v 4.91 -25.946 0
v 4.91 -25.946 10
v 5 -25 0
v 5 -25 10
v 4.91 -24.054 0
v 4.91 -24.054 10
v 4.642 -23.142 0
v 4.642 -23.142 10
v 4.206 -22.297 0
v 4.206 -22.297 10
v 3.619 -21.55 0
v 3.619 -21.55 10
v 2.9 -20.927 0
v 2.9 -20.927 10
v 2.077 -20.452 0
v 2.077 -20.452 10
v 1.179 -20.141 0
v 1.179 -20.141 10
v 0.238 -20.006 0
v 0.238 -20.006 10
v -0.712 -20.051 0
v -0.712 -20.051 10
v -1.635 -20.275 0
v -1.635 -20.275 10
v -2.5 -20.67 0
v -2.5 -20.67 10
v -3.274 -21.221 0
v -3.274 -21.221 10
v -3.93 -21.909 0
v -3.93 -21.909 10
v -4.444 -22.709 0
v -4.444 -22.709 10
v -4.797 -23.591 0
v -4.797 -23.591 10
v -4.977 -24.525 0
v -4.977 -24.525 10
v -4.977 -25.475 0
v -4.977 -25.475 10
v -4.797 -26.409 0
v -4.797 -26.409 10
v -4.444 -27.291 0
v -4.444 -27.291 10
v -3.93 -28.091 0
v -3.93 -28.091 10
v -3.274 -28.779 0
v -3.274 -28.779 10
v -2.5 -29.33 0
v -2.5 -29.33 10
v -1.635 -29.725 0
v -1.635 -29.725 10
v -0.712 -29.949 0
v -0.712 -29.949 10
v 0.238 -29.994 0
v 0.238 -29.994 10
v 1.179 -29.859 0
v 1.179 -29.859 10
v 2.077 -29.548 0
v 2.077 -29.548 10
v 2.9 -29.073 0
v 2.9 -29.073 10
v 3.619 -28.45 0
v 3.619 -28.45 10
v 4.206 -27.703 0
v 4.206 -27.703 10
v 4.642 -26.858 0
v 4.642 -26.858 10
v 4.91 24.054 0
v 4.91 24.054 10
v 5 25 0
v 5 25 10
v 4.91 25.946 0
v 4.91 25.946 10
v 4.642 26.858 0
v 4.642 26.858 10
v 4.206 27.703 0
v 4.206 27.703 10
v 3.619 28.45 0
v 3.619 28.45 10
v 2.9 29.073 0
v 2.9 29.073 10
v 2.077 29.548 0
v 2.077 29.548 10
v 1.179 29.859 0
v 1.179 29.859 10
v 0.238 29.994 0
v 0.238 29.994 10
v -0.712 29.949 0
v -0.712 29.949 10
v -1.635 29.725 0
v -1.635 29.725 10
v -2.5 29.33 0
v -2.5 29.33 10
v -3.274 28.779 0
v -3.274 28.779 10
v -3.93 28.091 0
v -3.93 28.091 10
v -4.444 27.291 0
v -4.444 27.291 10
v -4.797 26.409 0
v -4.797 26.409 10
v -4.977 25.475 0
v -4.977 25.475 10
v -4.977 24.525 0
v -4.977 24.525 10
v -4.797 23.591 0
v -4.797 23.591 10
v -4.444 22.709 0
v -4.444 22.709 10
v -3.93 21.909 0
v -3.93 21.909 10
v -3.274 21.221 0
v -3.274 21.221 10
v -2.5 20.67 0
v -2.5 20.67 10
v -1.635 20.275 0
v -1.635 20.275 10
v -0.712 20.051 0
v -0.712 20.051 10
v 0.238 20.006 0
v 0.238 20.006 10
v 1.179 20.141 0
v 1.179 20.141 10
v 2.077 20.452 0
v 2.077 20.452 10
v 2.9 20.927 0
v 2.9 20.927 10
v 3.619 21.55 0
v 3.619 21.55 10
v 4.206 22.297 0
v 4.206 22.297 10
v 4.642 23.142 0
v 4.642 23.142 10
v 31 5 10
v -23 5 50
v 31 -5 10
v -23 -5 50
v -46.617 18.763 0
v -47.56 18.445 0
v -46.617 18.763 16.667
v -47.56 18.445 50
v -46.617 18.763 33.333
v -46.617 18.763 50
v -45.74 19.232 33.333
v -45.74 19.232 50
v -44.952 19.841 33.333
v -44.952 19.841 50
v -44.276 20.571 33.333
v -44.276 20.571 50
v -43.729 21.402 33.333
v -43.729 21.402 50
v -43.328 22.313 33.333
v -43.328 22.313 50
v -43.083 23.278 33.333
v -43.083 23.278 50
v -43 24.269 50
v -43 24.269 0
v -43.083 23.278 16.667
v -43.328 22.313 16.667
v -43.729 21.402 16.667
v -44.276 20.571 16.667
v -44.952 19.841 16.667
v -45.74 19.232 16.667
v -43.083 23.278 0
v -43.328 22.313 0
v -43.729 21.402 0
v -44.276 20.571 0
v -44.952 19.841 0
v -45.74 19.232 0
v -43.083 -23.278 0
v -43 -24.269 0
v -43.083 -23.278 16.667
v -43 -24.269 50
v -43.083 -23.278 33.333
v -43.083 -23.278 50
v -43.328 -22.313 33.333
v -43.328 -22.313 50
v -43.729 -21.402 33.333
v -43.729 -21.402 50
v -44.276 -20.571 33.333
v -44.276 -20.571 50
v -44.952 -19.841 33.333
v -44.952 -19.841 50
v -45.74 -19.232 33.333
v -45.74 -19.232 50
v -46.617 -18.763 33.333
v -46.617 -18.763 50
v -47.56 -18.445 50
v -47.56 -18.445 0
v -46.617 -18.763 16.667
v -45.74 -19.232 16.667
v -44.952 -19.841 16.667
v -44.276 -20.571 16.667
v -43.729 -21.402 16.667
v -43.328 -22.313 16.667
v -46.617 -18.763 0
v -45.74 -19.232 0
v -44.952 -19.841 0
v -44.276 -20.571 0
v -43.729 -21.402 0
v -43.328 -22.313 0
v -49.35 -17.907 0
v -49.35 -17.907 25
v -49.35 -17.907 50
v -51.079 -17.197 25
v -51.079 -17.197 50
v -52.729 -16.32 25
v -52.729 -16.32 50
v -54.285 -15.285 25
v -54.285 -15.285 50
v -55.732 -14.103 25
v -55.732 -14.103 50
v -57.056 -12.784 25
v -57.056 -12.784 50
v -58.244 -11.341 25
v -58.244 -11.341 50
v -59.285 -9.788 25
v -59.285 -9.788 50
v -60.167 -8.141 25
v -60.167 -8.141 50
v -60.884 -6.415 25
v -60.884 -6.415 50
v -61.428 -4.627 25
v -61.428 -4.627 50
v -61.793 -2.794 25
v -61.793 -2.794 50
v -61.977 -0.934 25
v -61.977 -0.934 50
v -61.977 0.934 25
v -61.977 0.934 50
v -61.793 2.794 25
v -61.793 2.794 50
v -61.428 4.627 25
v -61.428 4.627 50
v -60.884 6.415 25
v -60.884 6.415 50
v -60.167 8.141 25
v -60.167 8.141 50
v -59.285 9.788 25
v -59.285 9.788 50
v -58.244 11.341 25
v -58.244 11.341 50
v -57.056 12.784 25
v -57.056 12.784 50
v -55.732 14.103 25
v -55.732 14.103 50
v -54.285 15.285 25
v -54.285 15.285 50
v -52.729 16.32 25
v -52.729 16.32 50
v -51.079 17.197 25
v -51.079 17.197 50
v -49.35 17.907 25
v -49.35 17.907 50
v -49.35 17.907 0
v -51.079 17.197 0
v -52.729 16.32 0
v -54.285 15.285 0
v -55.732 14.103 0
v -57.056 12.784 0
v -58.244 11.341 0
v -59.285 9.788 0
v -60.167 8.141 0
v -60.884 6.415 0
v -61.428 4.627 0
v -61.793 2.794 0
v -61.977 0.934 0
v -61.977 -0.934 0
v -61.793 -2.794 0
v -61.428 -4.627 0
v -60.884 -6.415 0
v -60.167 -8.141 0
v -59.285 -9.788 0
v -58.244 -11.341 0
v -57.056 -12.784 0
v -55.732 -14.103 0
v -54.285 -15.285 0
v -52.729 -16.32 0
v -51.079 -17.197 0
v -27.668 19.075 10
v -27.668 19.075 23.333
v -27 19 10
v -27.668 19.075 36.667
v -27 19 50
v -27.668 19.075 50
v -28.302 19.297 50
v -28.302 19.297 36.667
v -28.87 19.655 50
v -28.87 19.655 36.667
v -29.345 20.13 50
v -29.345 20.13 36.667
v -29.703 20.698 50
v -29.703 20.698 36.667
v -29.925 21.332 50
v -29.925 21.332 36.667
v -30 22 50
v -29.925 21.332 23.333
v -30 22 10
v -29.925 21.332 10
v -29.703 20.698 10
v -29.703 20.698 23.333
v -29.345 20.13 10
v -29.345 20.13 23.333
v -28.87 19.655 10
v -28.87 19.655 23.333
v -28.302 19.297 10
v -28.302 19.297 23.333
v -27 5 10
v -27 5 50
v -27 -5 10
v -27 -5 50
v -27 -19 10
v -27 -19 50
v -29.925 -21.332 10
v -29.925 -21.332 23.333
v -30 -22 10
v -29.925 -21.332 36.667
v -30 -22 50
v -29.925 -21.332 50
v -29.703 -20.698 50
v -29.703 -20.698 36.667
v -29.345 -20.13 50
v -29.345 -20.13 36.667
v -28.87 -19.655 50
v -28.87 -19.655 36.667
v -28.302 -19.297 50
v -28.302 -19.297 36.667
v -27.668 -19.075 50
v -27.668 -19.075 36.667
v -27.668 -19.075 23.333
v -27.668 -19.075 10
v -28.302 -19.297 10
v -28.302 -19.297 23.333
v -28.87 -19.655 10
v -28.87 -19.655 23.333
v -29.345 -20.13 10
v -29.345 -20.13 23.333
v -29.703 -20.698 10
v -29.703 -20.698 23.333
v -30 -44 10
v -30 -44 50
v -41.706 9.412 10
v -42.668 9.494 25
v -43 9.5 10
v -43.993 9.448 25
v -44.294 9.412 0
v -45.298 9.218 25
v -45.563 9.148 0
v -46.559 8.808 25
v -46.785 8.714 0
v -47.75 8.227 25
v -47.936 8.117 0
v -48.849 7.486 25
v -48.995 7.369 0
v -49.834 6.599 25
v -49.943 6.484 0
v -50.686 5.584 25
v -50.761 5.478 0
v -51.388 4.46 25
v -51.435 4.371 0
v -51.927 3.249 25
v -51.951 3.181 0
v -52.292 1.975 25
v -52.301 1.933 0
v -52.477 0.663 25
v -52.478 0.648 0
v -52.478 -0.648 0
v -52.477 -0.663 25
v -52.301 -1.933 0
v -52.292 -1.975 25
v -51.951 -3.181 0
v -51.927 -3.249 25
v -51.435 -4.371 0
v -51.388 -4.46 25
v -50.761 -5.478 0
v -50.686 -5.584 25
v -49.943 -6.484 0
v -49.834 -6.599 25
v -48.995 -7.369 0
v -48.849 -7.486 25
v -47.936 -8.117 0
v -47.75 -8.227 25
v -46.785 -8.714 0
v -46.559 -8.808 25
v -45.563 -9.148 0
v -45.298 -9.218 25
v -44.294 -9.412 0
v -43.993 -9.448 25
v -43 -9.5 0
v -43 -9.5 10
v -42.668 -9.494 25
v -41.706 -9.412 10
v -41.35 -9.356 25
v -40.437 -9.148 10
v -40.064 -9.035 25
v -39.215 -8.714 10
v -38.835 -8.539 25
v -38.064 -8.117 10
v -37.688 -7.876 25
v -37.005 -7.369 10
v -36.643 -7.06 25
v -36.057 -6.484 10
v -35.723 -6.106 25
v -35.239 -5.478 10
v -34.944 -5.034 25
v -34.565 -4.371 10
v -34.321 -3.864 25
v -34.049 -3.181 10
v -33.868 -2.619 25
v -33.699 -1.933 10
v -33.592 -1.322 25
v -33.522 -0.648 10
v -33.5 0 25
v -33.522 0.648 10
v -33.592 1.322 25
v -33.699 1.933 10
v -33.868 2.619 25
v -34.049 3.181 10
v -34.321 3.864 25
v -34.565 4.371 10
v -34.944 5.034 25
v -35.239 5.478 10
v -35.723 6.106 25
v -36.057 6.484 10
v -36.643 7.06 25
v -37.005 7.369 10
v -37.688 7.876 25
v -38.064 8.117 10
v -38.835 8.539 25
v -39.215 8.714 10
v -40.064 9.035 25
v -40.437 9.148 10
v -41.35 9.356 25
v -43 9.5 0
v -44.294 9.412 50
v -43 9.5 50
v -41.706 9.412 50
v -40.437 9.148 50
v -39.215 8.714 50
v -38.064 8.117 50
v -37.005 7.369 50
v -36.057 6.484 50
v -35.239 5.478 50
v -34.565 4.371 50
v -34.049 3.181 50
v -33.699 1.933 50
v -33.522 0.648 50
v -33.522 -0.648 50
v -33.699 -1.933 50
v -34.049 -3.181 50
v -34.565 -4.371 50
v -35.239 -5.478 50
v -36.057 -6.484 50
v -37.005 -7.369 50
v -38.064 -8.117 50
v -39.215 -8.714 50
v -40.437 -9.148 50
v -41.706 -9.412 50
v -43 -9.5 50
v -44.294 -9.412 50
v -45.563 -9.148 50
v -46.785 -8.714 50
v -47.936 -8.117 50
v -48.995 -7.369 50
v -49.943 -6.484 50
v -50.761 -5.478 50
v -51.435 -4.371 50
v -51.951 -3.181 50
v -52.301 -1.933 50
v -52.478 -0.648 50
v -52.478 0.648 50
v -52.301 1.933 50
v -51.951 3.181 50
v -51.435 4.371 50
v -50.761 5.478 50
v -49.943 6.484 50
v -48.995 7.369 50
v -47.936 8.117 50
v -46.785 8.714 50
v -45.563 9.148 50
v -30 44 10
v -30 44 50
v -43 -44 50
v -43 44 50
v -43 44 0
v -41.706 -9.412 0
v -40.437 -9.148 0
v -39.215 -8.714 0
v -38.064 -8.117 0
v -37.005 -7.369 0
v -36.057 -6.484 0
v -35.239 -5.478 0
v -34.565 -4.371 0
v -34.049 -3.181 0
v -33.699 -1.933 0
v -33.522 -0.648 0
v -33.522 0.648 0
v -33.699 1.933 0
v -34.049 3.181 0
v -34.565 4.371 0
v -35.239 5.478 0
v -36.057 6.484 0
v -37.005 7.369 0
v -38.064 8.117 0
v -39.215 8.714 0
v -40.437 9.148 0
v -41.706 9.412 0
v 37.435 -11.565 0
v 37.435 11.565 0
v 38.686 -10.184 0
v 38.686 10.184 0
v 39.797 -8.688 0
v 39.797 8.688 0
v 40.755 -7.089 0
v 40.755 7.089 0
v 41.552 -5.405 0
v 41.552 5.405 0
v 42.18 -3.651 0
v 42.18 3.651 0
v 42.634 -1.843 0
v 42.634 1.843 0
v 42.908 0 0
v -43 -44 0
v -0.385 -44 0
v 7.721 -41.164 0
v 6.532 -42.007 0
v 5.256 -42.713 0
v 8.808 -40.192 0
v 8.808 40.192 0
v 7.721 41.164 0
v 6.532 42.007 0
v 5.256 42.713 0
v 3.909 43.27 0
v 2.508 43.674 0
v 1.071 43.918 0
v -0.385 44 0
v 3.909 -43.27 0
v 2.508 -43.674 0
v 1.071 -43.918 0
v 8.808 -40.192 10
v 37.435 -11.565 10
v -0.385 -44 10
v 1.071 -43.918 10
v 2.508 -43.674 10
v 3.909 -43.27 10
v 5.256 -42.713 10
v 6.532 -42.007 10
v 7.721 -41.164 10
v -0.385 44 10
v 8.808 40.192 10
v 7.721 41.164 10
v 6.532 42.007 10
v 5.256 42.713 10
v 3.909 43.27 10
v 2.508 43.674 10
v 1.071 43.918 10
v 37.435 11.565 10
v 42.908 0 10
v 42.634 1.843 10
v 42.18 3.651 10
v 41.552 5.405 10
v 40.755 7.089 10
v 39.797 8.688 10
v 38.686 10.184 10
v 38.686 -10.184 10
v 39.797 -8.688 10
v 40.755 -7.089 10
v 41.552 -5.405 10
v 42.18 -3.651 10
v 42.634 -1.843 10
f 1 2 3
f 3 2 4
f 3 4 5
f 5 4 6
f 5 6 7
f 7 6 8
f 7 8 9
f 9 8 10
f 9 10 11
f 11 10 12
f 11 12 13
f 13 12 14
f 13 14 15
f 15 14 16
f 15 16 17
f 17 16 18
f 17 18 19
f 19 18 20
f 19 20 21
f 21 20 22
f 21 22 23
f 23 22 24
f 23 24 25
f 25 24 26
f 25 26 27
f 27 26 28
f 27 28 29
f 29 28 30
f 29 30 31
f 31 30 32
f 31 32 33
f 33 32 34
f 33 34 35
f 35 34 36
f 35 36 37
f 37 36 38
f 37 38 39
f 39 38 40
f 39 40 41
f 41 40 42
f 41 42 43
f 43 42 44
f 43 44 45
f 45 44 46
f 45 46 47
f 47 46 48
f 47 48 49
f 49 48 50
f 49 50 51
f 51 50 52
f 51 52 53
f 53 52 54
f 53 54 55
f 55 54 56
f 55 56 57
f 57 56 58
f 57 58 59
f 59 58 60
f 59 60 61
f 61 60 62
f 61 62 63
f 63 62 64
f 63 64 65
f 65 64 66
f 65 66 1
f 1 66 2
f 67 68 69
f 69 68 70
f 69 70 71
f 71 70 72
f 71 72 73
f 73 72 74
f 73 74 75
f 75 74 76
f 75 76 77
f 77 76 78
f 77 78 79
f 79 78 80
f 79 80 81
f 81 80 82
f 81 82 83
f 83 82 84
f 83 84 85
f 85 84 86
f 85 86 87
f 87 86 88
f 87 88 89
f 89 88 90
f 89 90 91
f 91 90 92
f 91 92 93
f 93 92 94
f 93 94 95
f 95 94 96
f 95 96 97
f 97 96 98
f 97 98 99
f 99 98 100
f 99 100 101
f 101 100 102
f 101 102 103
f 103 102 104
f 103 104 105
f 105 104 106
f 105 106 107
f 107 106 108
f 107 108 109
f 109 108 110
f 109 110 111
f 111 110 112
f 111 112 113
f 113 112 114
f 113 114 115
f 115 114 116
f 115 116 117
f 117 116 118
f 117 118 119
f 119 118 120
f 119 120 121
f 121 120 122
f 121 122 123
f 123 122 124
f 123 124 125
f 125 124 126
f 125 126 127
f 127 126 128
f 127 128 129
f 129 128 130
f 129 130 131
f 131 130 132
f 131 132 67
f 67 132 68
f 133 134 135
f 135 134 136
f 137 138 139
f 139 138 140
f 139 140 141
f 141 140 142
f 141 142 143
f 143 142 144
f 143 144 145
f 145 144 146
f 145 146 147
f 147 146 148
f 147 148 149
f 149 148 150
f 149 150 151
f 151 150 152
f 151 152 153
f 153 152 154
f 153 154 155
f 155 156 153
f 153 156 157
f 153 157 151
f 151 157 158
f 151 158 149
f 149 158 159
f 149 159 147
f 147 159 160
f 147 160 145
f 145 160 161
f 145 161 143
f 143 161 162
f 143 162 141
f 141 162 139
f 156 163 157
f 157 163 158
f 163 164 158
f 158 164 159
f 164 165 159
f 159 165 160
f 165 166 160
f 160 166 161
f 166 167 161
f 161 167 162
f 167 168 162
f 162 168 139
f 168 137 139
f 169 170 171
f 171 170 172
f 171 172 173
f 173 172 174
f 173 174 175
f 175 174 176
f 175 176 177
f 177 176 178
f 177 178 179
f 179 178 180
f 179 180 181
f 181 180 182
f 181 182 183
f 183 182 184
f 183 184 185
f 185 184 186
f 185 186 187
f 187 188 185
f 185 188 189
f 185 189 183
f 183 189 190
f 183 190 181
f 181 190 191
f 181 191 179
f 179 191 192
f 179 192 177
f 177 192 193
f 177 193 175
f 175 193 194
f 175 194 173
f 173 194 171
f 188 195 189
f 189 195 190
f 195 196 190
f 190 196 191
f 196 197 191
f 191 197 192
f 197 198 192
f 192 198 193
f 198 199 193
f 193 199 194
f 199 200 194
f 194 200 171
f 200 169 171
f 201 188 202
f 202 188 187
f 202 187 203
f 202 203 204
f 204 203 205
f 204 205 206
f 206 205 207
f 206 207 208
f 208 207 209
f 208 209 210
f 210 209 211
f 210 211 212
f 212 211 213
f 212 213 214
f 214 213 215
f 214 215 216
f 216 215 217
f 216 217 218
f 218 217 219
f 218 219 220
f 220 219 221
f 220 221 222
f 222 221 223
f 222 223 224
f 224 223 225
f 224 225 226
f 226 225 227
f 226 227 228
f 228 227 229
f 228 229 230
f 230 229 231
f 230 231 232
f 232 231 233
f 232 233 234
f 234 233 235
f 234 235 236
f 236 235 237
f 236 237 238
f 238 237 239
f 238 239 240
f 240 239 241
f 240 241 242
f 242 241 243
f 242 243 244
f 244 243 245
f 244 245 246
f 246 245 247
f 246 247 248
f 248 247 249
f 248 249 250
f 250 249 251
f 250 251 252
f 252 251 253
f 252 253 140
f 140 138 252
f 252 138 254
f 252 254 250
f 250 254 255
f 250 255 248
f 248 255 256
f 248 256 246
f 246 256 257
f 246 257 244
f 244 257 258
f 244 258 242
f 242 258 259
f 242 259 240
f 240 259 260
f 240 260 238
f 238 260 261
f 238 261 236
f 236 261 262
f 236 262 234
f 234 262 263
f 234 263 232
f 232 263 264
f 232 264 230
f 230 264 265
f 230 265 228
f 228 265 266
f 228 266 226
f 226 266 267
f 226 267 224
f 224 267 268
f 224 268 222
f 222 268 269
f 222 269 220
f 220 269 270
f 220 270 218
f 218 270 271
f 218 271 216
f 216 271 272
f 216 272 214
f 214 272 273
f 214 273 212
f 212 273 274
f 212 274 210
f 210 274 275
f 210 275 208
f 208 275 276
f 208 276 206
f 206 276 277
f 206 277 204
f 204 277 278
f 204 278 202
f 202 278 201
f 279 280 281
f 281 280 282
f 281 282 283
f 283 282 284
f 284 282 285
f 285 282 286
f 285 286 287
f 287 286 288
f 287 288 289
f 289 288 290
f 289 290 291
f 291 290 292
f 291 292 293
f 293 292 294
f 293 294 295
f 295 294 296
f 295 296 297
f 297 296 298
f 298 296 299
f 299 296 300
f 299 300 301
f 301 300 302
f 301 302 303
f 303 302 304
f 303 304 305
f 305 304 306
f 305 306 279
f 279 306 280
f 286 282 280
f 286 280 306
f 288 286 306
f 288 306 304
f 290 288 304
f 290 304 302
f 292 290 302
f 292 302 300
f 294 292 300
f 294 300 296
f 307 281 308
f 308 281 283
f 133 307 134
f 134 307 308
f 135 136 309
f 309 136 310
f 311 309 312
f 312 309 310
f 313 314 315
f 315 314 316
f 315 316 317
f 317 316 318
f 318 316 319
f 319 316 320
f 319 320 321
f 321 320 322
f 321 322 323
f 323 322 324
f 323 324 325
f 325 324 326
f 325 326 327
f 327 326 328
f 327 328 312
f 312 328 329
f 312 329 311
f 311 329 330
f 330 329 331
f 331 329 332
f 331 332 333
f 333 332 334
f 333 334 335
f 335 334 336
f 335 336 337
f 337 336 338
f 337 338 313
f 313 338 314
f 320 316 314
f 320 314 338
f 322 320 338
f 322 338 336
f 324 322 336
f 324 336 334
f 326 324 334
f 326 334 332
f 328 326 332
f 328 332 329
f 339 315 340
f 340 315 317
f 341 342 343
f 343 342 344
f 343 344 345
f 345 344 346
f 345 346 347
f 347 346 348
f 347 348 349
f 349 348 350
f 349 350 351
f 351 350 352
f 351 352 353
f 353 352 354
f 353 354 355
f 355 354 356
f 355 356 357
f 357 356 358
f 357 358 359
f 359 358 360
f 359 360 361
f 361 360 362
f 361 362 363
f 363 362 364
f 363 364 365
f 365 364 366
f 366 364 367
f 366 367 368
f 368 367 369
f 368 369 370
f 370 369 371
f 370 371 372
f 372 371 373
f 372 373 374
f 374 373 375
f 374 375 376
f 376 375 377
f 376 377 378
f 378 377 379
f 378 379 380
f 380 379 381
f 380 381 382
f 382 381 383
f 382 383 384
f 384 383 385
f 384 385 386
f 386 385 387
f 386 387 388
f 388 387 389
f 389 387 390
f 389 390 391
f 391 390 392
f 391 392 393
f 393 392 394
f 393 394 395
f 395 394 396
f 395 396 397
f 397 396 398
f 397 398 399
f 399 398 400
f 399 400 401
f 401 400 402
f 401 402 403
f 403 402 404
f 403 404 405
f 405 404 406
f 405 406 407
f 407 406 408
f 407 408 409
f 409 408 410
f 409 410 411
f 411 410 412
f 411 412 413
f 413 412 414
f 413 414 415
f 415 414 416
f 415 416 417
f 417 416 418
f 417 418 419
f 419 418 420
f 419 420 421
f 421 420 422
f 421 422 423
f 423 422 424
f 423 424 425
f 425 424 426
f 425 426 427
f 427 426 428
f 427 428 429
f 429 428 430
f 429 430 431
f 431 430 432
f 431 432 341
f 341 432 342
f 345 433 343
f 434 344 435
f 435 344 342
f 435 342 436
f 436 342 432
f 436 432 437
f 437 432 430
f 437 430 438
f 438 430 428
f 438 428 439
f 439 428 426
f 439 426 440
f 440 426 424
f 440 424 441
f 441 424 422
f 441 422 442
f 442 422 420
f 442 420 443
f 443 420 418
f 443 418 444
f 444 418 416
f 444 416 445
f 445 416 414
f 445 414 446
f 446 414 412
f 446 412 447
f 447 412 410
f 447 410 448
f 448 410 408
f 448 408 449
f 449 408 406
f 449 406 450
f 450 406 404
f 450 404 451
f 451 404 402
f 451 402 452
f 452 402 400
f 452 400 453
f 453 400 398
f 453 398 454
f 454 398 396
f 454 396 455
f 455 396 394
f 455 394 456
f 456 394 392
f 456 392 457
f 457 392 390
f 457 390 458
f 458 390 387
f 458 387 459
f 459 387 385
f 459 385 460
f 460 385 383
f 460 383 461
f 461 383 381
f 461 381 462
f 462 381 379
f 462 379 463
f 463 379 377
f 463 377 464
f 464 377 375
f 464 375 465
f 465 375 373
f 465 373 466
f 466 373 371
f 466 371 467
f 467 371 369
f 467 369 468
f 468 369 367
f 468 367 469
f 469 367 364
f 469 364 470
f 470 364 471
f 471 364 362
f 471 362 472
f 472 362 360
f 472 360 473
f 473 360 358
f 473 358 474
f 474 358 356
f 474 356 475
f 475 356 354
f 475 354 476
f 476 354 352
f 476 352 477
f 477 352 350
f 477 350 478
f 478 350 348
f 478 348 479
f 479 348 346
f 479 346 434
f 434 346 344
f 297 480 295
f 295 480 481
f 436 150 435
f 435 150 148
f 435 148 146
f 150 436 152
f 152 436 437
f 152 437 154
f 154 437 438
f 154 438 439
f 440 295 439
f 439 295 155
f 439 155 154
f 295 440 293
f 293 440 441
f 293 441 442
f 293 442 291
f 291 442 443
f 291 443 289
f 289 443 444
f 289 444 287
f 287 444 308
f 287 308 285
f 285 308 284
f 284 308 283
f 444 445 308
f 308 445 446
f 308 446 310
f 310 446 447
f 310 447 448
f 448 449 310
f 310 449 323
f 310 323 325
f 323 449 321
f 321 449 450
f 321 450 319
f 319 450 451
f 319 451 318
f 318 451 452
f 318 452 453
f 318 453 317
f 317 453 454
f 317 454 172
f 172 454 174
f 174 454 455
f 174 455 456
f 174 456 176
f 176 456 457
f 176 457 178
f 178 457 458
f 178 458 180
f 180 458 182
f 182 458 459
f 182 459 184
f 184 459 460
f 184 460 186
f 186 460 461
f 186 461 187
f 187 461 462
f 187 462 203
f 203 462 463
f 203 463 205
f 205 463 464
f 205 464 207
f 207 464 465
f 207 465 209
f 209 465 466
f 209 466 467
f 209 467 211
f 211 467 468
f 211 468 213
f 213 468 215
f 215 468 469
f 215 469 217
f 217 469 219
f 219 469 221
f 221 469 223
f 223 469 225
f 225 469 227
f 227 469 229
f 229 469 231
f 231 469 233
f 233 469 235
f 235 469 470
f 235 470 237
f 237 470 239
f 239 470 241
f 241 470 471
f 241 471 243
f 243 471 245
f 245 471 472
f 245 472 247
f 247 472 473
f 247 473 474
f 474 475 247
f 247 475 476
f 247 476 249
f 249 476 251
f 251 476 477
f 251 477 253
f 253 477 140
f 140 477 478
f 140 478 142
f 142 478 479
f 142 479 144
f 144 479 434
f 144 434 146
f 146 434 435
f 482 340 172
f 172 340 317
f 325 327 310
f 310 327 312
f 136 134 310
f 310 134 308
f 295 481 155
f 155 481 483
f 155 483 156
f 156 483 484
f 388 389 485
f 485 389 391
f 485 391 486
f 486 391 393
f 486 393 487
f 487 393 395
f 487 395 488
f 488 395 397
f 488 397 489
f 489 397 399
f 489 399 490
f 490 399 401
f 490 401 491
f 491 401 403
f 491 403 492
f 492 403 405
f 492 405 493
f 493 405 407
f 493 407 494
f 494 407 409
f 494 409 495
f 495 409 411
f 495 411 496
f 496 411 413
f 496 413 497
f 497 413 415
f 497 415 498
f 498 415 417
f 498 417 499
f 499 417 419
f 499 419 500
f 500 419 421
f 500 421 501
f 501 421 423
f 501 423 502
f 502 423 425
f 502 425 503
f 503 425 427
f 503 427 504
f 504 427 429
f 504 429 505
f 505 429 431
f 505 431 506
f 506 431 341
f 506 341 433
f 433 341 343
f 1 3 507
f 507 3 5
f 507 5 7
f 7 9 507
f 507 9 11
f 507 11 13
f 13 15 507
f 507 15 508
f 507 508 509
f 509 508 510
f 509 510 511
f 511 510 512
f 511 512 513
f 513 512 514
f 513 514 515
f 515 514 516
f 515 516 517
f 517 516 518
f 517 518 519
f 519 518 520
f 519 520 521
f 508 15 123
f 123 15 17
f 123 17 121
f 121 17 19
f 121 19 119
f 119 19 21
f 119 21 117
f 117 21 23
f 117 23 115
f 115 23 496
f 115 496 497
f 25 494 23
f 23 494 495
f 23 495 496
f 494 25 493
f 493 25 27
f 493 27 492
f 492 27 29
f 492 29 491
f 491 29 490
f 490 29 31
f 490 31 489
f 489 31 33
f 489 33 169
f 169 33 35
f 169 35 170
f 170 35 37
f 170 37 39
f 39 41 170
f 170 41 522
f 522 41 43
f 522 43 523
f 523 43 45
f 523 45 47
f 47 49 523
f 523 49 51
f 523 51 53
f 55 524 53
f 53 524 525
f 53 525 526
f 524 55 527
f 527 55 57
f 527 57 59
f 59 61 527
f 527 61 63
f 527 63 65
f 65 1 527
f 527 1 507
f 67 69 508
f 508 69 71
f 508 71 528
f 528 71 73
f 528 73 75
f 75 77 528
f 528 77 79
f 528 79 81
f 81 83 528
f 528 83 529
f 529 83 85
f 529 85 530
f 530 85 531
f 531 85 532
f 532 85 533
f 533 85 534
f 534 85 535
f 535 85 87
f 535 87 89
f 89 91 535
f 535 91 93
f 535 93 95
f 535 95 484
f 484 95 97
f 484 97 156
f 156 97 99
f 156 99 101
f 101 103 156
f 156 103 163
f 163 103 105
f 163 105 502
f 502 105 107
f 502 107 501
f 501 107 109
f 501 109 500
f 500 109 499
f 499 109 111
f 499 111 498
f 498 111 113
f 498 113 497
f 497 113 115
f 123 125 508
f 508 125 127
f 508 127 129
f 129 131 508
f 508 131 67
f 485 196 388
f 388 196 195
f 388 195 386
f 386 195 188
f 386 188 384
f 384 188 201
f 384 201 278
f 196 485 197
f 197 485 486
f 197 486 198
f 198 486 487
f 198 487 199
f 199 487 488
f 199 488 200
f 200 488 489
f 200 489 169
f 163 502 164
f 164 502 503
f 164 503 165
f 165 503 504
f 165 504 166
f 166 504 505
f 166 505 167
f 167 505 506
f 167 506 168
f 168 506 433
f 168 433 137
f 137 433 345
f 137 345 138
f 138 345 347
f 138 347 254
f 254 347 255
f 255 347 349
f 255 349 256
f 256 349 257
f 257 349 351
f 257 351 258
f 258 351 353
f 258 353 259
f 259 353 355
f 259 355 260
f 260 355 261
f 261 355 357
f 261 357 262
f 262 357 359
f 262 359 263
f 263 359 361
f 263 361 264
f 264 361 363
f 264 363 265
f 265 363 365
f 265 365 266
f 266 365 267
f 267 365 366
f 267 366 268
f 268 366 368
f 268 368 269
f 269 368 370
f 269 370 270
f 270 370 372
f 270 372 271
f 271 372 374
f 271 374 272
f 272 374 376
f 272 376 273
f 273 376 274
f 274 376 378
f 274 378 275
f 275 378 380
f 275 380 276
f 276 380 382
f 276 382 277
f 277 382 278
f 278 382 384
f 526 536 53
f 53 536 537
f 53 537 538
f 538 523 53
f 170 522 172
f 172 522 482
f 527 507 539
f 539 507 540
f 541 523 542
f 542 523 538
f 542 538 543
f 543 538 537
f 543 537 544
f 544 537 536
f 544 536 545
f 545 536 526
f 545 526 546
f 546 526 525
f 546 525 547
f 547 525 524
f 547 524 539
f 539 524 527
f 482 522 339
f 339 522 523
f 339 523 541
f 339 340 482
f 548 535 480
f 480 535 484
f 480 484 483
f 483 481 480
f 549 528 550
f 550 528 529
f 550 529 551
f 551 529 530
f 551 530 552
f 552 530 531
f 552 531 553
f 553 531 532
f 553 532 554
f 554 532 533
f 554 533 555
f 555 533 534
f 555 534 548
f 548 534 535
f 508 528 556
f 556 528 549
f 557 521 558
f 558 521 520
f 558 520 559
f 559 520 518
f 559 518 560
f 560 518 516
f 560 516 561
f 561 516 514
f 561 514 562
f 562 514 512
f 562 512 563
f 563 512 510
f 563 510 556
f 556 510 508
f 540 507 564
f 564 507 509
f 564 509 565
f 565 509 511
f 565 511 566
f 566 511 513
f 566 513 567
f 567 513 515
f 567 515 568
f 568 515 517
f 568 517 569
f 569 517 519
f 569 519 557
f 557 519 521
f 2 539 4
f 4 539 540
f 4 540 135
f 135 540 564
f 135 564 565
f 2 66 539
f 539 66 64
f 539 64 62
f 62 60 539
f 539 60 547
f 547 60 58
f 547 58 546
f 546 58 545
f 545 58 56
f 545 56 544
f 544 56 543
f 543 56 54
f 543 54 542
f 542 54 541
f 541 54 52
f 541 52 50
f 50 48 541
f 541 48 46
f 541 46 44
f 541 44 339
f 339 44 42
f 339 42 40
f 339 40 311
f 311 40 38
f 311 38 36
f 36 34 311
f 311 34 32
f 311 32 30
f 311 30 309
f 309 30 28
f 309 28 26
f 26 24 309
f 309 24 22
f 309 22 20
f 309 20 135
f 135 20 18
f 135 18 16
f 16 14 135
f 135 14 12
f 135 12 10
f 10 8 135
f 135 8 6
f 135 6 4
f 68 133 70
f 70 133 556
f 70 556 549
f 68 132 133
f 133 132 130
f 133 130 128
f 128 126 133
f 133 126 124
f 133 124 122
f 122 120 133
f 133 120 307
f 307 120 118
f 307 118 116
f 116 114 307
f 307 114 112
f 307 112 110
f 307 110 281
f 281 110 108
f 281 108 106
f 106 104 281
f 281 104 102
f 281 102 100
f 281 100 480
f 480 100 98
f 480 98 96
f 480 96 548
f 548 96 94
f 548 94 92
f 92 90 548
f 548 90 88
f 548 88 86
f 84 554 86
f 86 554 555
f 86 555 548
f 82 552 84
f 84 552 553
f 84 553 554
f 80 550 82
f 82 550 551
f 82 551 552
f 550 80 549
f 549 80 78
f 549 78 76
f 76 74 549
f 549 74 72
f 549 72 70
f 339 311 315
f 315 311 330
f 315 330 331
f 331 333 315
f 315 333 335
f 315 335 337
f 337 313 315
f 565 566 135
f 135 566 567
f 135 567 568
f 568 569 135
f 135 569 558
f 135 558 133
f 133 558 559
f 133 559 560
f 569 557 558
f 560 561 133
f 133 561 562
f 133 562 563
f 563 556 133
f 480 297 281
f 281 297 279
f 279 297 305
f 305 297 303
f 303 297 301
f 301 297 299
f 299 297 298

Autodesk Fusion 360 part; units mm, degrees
sketch "Sketch1" plane through (0, 0, 0) normal (0, 0, 1) x (1, 0, 0)
  line L0 (-0.3848, 44) -> (-43, 44)
  line L1 (-43, 44) -> (-43, -44)
  line L2 (-43, -44) -> (-0.3848, -44)
  line L3 (43, 1.8701) -> (43, -1.8701)
  line L4 (37.435, 11.565) -> (8.8076, 40.1924)
  line L5 (37.435, -11.565) -> (8.8076, -40.1924)
  arc A0 (43, -1.8701) -> (37.435, 11.565) centre (24, -1.8701) ccw
  arc A1 (37.435, -11.565) -> (43, 1.8701) centre (24, 1.8701) ccw
  arc A2 (-0.3848, -44) -> (8.8076, -40.1924) centre (-0.3848, -31) ccw
  arc A3 (8.8076, 40.1924) -> (-0.3848, 44) centre (-0.3848, 31) ccw
  point P0 (43, 6)
  point P1 (5, 44)
  point P2 (43, -6)
  point P3 (5, -44)
  dimension "d2" = 88
  dimension "d7" = 19
  dimension "d8" = 19
  dimension "d9" = 13
  dimension "d10" = 13
extrude "Extrude1" add sketch "Sketch1" along normal blind 10 contours L0 L1 L2 L4 L5 A0 A1 A2 A3 makes body 1
sketch "Sketch3" plane through (0, 0, 10) normal (0, 0, 1) x (-1, 0, 0)
  arc A0 (-37.435, 11.565) -> (-42.9077, 0) centre (-24, -1.8701) ccw
  arc A1 (-42.9077, 0) -> (-37.435, -11.565) centre (-24, 1.8701) ccw
  line L0 (-37.435, -11.565) -> (-8.8076, -40.1924)
  arc A2 (-8.8076, -40.1924) -> (0.3848, -44) centre (0.3848, -31) ccw
  line L1 (0.3848, -44) -> (43, -44)
  line L2 (43, -44) -> (43, 44)
  line L3 (43, 44) -> (0.3848, 44)
  arc A3 (0.3848, 44) -> (-8.8076, 40.1924) centre (0.3848, 31) ccw
  line L4 (-8.8076, 40.1924) -> (-37.435, 11.565)
  line L5 (43, 44) -> (30, 44)
  line L6 (30, -44) -> (43, -44)
  line L7 (27, -19) -> (27, -19)
  line L8 (27, 19) -> (27, 19)
  line L9 (30, -22) -> (30, -44)
  line L10 (30, 44) -> (30, 22)
  arc A4 (30, -22) -> (27, -19) centre (27, -22) ccw
  arc A5 (27, 19) -> (30, 22) centre (27, 22) ccw
  circle A6 centre (43, 0) radius 9.5
  line L11 (43, -44) -> (43, -24.2693)
  line L12 (43, 24.2693) -> (43, 44)
  arc A7 (47.56, -18.4447) -> (47.56, 18.4447) centre (43, 0) ccw
  arc A8 (43, 24.2693) -> (47.56, 18.4447) centre (49, 24.2693) ccw
  arc A9 (47.56, -18.4447) -> (43, -24.2693) centre (49, -24.2693) ccw
  line L13 (27, -5) -> (23, -5)
  line L14 (23, -5) -> (23, 5)
  line L15 (23, 5) -> (27, 5)
  line L16 (27, -19) -> (27, -5)
  line L17 (27, 5) -> (27, 19)
  dimension "d18" = 13
  dimension "d19" = 88
  dimension "d23" = 3
  dimension "d24" = 3
  dimension "d25" = 38
  dimension "d27" = 6
  dimension "d28" = 6
  dimension "d29" = 4
  dimension "d30" = 10
  dimension "d31" = 39
extrude "Extrude2" add sketch "Sketch3" along normal blind 40 separate body contours L1 L2 L3 L5 L6 L9 L10 A4 A5 A6 L11 L12 L13 L14 L15 L16 L17 makes body 2
extrude "Extrude3" add sketch "Sketch3" along normal blind 40 and the other way blind 10 contours L2 A6 A7 A8 A9 bodies 2
sketch "Sketch4" plane through (0, 0, 0) normal (0, 0, 1) x (1, 0, 0)
  line L0 (-43.035, -9.4999) -> (-43.035, 9.4999)
  arc A0 (-43.035, -9.4999) -> (-43.035, 9.4999) centre (-43, 0) ccw
  dimension "d38" = 19
extrude "Extrude4" cut sketch "Sketch4" along normal blind 10 bodies 1
sketch "Sketch5" plane through (0, 0, 0) normal (0, 1, 0) x (1, 0, 0)
  line L0 (-23, -10) -> (31, -10)
  line L1 (31, -10) -> (-23, -50)
  line L2 (-23, -50) -> (-23, -10)
extrude "Extrude5" add sketch "Sketch5" along normal mid plane 10 bodies 1 2
sketch "Sketch6" plane through (0, 0, 10) normal (0, 0, 1) x (-1, 0, 0)
  line L0 (-31, 5) -> (27, 5)
  line L1 (27, 5) -> (27, 19)
  arc A0 (27, 19) -> (30, 22) centre (27, 22) ccw
  line L2 (30, 22) -> (30, 44)
  line L3 (30, 44) -> (0.3848, 44)
  arc A1 (0.3848, 44) -> (-8.8076, 40.1924) centre (0.3848, 31) ccw
  line L4 (-8.8076, 40.1924) -> (-37.435, 11.565)
  arc A2 (-37.435, 11.565) -> (-42.9077, 0) centre (-24, -1.8701) ccw
  arc A3 (-42.9077, 0) -> (-37.435, -11.565) centre (-24, 1.8701) ccw
  line L5 (-37.435, -11.565) -> (-8.8076, -40.1924)
  arc A4 (-8.8076, -40.1924) -> (0.3848, -44) centre (0.3848, -31) ccw
  line L6 (0.3848, -44) -> (30, -44)
  line L7 (30, -44) -> (30, -22)
  arc A5 (30, -22) -> (27, -19) centre (27, -22) ccw
  line L8 (27, -19) -> (27, -5)
  line L9 (27, -5) -> (-31, -5)
  line L10 (-31, -5) -> (-31, 5)
  circle A6 centre (0, 25) radius 5
  circle A7 centre (0, -25) radius 5
  dimension "d43" = 10
  dimension "d44" = 20
  dimension "d45" = 10
extrude "Extrude6" cut sketch "Sketch6" against normal blind 10 contours A6 | A7 bodies 1
equation "d31 = 20 mm + 19 mm"
